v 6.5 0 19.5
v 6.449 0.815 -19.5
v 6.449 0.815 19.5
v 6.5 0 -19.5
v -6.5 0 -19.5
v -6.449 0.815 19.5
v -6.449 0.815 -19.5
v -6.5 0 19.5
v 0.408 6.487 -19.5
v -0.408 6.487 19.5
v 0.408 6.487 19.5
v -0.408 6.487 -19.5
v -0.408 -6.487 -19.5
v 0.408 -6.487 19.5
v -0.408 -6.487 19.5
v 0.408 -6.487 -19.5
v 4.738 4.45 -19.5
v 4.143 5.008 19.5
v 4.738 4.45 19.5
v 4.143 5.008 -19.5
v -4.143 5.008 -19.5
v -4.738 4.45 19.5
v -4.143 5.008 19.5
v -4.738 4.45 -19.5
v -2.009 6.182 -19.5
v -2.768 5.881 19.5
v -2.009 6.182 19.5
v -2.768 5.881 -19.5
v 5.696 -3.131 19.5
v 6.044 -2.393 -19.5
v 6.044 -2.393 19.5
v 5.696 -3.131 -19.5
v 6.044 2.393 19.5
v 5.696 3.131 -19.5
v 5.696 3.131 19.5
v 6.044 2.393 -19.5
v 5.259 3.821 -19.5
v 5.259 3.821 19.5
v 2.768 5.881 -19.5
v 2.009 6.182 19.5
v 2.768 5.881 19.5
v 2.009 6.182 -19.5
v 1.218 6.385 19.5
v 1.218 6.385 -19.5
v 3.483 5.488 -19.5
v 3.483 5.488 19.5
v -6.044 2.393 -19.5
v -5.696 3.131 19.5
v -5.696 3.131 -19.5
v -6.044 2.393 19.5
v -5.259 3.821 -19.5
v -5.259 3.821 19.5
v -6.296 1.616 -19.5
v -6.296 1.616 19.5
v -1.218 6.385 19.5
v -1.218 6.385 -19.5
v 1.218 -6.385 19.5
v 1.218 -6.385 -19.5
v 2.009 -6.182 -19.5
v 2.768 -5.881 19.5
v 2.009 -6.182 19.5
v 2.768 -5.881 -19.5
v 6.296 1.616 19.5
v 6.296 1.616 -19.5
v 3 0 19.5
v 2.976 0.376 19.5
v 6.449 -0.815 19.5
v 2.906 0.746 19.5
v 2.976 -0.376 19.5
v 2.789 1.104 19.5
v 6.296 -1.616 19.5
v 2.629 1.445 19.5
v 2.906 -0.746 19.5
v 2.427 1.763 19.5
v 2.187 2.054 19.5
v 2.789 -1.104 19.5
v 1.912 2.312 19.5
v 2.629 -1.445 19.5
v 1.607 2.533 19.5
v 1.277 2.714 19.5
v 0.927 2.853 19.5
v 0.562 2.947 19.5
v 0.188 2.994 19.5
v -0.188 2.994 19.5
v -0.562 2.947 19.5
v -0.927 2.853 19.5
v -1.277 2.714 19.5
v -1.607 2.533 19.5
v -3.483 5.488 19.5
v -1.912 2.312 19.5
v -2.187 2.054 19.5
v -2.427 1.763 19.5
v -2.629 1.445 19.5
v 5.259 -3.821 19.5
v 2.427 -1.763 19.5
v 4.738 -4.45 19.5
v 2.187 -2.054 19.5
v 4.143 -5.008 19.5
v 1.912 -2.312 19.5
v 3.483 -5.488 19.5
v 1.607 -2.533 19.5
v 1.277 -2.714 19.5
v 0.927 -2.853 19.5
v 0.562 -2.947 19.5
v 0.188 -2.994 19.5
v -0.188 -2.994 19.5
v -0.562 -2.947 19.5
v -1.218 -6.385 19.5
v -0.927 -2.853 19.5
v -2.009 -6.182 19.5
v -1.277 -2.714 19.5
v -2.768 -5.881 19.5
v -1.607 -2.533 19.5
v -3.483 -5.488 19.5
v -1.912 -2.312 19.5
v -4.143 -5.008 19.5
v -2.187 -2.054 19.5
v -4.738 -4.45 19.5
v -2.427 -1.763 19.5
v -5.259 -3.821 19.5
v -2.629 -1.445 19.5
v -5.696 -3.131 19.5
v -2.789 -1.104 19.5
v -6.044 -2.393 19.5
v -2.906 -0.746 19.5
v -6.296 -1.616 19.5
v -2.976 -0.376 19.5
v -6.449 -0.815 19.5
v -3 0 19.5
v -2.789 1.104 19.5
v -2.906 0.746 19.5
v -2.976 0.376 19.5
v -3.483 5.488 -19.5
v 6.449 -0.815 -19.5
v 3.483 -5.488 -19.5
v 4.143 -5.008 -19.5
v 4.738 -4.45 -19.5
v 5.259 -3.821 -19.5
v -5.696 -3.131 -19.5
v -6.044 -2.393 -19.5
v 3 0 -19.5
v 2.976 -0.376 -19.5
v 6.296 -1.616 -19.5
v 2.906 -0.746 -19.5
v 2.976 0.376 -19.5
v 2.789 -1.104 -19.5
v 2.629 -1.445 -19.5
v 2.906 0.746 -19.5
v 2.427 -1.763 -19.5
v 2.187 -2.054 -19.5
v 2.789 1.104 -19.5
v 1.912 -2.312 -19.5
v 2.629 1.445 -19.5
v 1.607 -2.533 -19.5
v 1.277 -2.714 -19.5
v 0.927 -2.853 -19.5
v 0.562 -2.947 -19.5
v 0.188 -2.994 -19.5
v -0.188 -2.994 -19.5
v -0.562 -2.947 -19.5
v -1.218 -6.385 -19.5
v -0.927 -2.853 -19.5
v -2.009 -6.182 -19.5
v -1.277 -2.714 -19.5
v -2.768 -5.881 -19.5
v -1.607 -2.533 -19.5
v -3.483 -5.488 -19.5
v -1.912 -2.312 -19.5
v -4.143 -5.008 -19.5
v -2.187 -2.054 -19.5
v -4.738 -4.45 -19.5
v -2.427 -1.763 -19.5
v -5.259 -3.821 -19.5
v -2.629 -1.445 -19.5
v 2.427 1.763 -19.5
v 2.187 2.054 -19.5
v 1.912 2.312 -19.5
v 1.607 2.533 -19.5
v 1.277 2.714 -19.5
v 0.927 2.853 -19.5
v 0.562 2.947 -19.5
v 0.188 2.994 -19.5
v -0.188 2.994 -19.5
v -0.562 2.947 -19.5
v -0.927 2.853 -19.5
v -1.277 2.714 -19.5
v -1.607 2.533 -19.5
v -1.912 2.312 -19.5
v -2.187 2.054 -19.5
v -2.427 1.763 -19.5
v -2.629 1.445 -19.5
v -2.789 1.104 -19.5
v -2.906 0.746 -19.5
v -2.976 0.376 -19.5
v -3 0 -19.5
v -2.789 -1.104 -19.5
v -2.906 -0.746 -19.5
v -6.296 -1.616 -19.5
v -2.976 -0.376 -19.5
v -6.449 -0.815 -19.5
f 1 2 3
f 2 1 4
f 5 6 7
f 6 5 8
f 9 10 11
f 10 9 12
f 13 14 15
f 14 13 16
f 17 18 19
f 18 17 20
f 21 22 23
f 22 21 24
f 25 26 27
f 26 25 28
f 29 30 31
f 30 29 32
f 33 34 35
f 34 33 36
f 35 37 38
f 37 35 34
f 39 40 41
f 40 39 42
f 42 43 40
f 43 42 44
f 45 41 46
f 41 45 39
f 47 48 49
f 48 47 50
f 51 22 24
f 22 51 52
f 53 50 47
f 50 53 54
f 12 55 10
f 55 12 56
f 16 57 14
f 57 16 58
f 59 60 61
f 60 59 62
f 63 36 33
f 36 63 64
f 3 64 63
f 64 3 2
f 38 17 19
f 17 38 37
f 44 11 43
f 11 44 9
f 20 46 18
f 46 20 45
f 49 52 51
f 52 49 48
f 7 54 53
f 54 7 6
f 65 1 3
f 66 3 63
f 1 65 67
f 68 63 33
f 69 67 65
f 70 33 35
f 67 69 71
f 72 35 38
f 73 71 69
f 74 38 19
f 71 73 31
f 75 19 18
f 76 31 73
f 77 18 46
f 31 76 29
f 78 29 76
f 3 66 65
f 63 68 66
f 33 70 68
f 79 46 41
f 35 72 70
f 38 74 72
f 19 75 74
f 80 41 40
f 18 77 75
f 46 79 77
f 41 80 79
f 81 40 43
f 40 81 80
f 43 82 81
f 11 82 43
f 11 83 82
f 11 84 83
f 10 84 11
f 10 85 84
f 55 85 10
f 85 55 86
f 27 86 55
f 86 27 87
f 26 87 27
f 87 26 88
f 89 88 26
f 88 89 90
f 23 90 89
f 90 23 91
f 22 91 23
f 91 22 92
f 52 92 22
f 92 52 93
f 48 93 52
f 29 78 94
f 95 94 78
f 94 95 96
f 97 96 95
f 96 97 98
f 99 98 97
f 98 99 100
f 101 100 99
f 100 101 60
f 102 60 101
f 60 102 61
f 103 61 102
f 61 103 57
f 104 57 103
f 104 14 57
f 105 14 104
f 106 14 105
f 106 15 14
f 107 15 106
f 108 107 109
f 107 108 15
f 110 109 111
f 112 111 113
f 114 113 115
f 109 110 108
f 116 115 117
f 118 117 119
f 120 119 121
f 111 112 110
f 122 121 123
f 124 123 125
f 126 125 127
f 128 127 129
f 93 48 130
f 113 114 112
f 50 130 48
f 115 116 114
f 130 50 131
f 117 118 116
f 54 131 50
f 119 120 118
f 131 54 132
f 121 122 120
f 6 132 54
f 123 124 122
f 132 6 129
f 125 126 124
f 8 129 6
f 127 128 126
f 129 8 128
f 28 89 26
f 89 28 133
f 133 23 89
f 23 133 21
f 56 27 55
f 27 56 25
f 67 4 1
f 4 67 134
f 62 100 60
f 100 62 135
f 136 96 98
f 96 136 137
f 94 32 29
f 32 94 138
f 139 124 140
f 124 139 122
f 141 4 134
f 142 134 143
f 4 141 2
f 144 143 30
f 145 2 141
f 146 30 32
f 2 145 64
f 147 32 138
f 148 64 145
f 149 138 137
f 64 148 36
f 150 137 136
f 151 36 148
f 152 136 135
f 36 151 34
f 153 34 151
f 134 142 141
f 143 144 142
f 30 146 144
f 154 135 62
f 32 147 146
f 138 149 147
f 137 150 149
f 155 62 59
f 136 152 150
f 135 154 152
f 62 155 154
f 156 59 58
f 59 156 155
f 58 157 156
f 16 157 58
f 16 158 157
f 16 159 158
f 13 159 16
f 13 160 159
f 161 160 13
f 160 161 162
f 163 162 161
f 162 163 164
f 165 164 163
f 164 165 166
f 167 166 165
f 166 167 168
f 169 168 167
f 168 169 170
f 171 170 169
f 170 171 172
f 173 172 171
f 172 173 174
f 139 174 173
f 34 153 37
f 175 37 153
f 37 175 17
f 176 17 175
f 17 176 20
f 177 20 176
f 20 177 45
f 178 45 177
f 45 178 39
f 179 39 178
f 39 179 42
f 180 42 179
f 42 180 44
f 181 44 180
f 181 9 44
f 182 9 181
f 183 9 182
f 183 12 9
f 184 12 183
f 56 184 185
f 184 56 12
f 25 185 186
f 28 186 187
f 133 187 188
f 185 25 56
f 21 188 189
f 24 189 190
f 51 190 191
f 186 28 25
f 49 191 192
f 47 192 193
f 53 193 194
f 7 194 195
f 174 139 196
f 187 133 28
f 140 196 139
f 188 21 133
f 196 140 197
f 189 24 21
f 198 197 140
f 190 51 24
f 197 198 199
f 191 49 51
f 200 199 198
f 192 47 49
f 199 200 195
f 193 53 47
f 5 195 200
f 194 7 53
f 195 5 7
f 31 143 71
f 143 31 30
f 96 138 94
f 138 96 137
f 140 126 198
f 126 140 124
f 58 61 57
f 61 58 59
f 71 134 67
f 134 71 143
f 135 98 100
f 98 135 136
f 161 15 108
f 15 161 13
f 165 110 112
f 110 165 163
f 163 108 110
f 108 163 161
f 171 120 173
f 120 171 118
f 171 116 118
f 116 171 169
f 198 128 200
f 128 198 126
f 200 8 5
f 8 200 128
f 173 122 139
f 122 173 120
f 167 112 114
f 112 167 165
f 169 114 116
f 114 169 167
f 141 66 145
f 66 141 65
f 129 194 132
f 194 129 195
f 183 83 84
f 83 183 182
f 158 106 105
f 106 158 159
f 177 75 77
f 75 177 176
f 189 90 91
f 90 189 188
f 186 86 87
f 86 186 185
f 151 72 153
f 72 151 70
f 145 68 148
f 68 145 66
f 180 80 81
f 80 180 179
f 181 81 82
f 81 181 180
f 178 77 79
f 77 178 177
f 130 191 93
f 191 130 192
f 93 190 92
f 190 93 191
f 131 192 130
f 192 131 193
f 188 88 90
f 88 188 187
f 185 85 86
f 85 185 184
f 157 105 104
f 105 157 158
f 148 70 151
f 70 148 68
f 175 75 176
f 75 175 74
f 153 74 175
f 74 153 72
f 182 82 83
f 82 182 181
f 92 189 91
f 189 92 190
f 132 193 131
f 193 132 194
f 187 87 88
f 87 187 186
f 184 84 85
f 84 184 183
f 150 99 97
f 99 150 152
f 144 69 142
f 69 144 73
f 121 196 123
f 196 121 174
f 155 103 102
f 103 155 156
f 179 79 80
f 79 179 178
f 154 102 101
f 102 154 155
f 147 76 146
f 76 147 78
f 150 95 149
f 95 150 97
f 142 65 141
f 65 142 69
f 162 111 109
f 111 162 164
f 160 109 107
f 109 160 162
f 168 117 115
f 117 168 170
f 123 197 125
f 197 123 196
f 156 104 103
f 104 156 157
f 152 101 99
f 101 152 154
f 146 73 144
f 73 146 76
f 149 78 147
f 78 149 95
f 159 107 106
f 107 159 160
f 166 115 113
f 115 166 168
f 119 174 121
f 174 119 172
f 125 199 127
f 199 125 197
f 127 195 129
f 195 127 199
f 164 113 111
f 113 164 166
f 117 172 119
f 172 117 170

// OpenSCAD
$fn = 50;


difference() {
	union() {
		translate(v = [0, 0, -19.5000000000]) {
			cylinder(h = 39, r = 6.5000000000);
		}
	}
	union() {
		translate(v = [0, 0, -100.0000000000]) {
			cylinder(h = 200, r = 3);
		}
	}
}
